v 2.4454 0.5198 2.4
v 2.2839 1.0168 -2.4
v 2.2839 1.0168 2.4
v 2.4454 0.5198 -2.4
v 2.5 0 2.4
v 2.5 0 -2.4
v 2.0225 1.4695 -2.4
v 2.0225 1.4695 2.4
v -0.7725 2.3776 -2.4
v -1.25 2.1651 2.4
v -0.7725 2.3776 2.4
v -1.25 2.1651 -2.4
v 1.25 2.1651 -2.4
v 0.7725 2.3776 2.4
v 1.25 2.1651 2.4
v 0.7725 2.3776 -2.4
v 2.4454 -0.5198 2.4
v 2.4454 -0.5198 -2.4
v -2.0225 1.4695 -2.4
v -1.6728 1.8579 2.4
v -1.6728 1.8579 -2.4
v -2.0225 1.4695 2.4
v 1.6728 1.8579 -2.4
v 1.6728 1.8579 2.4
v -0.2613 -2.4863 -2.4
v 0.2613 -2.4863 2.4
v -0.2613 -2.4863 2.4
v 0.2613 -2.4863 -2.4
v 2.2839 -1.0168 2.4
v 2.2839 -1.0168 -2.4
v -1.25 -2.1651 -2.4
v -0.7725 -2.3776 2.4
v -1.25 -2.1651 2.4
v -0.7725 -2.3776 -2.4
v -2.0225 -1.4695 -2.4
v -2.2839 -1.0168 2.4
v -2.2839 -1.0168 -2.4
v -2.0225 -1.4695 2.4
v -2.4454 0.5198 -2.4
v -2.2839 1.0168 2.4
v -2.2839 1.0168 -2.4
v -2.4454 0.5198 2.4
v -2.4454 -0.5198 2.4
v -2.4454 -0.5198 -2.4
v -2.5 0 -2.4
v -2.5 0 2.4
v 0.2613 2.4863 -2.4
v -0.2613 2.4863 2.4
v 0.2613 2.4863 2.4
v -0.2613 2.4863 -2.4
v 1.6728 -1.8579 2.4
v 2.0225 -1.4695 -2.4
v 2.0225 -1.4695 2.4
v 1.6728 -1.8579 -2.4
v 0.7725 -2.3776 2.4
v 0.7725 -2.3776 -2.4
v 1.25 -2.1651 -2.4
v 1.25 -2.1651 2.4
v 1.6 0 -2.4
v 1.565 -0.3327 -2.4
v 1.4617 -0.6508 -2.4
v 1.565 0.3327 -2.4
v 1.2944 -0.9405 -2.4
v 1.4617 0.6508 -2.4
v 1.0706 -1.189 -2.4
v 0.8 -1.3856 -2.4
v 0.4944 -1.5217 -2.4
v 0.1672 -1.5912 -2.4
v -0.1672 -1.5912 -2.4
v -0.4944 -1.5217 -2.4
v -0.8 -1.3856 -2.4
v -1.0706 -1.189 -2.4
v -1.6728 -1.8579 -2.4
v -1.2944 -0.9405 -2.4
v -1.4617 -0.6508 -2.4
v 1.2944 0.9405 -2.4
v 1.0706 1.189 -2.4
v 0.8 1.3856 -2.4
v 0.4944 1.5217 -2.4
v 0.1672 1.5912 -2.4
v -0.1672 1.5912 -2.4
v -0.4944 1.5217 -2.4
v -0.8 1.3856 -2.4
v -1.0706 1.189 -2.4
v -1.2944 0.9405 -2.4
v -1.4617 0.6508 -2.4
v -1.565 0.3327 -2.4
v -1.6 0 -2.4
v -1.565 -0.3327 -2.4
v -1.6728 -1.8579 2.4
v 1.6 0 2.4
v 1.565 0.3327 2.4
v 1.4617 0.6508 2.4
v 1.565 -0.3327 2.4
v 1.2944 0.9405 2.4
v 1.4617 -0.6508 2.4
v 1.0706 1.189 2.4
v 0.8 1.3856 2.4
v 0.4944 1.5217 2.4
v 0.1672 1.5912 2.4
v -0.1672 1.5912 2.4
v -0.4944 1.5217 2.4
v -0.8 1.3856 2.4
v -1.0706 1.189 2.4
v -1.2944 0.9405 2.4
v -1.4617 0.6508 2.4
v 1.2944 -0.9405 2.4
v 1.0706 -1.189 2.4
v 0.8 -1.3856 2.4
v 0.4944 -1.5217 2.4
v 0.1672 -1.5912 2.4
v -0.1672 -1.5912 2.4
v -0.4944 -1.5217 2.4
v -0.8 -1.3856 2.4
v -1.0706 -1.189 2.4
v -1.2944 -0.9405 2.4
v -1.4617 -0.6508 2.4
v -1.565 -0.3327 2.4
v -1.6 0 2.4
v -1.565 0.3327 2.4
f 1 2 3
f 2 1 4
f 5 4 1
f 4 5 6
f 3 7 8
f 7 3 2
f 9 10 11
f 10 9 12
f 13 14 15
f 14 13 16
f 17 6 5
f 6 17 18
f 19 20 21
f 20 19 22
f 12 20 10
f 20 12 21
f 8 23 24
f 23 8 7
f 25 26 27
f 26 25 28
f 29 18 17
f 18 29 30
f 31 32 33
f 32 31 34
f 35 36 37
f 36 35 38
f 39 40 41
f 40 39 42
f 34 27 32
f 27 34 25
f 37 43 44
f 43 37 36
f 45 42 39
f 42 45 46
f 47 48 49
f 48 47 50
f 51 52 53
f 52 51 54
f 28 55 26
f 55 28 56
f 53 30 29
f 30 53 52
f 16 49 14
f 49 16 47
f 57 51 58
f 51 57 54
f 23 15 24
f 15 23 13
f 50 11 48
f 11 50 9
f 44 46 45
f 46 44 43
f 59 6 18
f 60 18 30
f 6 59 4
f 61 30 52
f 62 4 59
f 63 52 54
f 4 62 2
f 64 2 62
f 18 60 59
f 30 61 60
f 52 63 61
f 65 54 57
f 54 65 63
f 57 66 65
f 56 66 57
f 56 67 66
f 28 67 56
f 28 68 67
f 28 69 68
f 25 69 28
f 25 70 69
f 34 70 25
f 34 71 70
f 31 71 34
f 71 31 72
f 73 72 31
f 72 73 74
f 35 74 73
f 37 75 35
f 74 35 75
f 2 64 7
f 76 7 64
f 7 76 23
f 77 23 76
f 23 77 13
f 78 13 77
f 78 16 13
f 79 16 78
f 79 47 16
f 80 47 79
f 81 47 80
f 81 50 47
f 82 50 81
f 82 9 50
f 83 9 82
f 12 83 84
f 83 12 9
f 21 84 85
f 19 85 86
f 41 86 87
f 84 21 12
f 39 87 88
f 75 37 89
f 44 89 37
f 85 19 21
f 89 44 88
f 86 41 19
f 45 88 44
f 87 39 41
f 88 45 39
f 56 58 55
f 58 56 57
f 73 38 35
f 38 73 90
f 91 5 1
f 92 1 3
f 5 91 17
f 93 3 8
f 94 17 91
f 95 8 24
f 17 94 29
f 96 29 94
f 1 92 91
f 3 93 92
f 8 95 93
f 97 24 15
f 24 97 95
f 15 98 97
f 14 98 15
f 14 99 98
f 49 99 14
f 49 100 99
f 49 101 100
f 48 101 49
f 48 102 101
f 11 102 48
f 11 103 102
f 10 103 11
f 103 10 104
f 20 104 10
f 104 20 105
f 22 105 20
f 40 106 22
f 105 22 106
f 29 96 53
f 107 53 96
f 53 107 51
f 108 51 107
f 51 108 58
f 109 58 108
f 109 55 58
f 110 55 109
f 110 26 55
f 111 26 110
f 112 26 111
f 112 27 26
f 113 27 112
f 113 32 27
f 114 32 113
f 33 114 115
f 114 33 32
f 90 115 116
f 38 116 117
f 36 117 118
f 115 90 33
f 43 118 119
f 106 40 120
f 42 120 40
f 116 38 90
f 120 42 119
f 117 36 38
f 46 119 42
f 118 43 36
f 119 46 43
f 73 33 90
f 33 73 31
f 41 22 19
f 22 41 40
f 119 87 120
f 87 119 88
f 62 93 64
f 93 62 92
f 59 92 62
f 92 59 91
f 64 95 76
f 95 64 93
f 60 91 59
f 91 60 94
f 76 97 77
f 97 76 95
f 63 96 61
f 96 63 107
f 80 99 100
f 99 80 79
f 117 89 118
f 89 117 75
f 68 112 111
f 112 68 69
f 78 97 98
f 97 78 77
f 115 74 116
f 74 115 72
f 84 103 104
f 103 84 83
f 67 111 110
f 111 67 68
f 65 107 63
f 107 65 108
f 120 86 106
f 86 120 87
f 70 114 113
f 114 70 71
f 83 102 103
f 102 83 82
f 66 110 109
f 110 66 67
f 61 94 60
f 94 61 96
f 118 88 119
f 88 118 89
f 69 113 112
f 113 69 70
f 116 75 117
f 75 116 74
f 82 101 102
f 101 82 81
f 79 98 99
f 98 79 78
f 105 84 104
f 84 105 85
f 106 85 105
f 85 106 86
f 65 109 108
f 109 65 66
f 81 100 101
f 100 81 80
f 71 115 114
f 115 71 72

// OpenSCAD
$fn=30;
difference(){
  cylinder(d=5, h=4.8, center=true);
  cylinder(d=3.2, h=4.8+2, center=true);
}
